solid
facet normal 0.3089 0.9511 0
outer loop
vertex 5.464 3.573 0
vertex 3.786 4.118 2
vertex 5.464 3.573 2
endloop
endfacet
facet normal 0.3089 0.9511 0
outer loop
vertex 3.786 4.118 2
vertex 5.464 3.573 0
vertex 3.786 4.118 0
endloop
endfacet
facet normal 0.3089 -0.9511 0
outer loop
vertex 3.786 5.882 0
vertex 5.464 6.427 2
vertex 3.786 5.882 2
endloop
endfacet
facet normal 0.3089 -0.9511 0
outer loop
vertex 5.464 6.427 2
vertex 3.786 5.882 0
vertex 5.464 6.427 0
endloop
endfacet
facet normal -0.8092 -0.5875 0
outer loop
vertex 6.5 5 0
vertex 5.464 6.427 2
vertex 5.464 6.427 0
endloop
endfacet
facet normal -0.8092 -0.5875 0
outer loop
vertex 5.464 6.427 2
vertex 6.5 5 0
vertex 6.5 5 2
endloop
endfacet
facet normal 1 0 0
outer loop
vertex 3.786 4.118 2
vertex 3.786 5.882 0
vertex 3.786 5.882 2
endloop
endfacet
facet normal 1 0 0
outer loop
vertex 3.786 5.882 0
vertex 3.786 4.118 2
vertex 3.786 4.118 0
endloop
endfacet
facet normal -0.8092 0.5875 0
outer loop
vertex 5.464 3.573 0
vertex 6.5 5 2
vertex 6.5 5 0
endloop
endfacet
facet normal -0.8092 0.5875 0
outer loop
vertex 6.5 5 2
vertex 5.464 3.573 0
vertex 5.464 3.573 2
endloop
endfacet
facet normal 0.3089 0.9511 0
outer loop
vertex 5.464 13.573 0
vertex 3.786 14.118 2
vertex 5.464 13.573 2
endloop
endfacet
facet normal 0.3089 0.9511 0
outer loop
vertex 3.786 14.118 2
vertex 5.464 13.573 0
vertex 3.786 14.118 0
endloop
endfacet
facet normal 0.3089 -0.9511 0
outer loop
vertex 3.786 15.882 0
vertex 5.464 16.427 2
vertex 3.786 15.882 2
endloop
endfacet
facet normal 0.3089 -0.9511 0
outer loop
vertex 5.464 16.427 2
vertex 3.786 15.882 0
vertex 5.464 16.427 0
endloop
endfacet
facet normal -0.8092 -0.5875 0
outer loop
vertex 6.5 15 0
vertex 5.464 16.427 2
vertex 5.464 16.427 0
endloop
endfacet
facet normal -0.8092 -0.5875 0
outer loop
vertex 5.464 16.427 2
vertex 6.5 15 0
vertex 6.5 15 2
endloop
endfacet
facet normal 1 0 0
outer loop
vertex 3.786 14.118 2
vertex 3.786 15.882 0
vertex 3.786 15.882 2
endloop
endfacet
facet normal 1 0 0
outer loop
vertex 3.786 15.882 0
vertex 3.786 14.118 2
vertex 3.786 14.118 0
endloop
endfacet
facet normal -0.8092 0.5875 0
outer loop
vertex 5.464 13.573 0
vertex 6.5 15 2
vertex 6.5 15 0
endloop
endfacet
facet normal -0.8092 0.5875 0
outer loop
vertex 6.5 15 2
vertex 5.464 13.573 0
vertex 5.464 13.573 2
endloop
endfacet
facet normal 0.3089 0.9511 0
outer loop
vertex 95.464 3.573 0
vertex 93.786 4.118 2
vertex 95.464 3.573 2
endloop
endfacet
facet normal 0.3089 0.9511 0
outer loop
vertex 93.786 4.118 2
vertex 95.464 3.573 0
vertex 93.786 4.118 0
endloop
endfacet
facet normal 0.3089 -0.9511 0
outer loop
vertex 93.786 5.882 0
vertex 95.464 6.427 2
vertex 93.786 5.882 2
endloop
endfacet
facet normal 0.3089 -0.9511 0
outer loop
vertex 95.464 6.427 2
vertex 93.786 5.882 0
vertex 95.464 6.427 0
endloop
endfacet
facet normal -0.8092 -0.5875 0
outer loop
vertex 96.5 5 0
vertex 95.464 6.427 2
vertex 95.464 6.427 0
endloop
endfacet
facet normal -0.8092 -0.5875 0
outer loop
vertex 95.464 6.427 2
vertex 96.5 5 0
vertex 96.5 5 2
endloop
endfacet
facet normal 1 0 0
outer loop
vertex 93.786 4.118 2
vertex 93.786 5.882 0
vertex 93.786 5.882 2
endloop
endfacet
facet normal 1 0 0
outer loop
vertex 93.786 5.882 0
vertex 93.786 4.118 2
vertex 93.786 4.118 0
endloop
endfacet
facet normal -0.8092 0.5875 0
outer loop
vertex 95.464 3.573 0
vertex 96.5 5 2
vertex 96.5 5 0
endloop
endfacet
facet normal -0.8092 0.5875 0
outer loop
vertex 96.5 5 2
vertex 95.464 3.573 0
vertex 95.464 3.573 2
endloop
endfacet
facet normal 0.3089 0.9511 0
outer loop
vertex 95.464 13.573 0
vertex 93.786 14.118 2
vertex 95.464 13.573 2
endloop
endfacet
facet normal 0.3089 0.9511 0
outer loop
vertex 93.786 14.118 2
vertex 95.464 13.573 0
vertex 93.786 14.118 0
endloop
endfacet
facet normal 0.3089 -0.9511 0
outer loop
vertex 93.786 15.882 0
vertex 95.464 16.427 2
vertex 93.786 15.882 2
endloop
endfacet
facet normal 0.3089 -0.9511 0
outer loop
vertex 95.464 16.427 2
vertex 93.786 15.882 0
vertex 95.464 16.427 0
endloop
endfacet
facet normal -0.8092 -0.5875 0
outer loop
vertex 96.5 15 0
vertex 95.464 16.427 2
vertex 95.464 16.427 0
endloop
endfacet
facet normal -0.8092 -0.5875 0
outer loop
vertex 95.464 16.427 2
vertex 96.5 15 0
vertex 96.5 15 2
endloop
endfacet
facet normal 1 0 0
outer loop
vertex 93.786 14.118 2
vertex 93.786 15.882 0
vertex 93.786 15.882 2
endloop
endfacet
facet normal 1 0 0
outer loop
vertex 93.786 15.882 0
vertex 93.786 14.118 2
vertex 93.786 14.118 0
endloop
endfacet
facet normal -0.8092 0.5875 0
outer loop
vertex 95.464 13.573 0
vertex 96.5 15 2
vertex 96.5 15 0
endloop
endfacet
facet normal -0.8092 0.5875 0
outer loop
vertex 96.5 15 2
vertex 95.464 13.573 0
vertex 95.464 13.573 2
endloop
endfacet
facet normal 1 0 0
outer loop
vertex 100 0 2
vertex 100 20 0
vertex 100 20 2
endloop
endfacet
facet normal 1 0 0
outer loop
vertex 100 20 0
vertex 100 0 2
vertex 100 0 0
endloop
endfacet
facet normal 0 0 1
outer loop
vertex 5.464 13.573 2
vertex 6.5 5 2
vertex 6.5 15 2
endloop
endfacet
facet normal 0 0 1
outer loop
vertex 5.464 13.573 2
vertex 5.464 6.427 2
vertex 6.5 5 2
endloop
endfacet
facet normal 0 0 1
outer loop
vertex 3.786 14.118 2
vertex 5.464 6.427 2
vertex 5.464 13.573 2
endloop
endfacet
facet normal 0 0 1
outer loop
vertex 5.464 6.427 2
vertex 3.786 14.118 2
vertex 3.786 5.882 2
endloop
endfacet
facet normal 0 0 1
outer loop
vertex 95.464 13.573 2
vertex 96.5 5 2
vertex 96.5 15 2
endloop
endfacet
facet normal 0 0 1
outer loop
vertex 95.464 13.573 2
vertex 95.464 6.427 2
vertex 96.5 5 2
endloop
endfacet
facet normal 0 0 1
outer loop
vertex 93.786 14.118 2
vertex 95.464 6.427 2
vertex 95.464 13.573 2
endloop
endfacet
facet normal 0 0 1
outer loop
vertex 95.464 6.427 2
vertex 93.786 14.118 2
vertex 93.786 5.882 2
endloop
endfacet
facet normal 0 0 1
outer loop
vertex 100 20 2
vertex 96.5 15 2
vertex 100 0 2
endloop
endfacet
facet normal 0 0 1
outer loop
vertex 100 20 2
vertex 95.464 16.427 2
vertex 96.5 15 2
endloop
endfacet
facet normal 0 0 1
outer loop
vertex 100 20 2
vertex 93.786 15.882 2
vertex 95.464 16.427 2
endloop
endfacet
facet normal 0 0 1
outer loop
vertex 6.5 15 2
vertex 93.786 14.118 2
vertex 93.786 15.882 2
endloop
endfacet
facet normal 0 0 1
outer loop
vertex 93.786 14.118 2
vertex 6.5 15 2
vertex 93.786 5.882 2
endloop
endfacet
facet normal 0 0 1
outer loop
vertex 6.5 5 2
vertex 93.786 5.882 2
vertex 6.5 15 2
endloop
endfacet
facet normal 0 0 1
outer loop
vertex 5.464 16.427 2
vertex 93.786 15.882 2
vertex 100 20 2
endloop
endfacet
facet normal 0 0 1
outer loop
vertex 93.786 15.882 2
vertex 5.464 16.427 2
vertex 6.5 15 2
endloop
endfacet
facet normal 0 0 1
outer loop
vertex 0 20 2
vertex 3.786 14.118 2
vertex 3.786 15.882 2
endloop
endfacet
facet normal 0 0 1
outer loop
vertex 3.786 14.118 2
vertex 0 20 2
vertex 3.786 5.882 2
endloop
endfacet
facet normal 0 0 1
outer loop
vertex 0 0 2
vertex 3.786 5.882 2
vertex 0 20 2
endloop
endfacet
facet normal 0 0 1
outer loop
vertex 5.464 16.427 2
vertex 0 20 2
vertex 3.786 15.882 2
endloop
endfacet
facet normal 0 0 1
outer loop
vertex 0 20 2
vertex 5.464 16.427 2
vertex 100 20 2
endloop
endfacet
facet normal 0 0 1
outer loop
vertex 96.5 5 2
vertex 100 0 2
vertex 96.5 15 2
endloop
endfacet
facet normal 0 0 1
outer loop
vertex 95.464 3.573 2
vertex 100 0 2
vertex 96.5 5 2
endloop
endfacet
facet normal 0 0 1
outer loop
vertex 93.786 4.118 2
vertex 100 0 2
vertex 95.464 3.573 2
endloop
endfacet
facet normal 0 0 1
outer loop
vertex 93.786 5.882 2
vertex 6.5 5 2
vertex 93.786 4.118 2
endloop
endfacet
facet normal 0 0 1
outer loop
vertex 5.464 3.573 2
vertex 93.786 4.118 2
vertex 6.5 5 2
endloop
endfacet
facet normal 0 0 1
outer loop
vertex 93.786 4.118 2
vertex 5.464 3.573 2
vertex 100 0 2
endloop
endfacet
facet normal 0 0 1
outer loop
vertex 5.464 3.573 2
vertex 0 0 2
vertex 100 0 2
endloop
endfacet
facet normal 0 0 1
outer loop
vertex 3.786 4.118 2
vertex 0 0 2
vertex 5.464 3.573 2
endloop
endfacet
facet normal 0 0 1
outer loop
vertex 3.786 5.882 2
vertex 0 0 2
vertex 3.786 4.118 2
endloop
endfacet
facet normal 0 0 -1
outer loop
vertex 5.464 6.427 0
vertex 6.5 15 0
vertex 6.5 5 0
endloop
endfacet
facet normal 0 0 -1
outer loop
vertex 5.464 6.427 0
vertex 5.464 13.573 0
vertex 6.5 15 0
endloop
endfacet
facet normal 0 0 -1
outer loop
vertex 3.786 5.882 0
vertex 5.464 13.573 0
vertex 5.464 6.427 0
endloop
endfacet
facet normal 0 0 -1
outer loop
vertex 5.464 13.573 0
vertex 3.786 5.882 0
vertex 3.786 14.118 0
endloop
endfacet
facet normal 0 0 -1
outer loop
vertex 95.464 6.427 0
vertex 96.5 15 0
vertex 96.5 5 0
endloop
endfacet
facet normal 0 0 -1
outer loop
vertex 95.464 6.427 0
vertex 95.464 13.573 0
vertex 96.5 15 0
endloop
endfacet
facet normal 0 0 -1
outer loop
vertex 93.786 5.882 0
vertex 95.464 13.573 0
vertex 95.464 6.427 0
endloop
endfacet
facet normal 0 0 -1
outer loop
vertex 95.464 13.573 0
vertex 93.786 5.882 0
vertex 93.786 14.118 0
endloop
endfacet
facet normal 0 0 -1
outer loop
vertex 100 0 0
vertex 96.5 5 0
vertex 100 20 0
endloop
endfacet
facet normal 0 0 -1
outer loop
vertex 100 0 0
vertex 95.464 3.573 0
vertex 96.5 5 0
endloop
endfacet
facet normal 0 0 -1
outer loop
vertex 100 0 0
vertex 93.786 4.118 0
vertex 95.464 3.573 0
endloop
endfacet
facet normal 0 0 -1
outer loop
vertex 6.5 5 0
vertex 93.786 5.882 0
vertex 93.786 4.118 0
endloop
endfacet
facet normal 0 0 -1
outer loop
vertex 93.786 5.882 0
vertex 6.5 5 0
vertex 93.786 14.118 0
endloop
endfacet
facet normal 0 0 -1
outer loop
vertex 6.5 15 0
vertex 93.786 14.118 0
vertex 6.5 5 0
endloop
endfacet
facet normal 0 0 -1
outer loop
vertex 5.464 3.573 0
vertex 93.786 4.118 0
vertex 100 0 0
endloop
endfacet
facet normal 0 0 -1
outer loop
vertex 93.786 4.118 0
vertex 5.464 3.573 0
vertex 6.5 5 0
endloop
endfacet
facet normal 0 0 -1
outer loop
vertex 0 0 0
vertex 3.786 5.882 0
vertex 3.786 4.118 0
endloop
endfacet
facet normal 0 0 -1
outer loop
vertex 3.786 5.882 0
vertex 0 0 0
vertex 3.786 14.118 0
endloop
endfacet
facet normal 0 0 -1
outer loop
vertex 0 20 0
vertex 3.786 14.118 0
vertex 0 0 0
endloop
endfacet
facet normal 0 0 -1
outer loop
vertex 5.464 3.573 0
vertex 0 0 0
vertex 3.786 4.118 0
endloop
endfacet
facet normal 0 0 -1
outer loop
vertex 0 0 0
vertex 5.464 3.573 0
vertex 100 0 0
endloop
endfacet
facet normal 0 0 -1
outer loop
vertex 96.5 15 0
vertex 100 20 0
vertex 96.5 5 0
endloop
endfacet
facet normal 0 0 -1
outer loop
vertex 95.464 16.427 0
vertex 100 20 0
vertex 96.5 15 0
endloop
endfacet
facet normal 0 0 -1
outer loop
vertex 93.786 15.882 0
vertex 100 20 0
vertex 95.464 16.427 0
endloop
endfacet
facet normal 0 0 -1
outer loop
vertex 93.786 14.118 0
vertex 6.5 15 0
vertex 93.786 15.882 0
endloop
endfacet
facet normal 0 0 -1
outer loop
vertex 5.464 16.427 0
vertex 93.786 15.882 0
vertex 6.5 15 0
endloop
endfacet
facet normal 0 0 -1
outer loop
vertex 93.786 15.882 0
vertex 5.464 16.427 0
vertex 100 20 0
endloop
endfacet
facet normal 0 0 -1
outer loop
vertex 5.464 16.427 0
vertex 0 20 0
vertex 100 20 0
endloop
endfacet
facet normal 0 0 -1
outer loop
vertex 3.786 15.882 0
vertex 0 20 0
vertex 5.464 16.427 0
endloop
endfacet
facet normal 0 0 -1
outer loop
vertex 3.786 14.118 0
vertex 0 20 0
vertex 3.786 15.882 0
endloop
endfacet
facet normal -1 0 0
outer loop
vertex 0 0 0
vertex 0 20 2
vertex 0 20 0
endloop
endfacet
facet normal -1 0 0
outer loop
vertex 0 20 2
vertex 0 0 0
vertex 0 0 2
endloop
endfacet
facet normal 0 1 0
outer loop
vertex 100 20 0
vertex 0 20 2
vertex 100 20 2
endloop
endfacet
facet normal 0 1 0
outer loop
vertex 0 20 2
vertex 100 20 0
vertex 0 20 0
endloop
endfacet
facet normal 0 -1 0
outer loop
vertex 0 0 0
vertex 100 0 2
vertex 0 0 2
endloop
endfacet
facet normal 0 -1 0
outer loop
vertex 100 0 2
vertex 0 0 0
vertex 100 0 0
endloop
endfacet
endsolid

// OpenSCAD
// Plate dimensions
plate_length = 100;
plate_width = 20;
plate_thickness = 2; // Reduced thickness to match the original model
hole_diameter = 3;
hole_offset = 5;

// Function to create a single plate with four holes
module plate() {
    difference() {
        cube([plate_length, plate_width, plate_thickness]);
        for (x = [hole_offset, plate_length - hole_offset]) {
            for (y = [hole_offset, plate_width - hole_offset]) {
                translate([x, y, -1]) 
                    cylinder(h=plate_thickness + 2, d=hole_diameter);
            }
        }
    }
}

// Render a single plate (removed stacking)
plate();
